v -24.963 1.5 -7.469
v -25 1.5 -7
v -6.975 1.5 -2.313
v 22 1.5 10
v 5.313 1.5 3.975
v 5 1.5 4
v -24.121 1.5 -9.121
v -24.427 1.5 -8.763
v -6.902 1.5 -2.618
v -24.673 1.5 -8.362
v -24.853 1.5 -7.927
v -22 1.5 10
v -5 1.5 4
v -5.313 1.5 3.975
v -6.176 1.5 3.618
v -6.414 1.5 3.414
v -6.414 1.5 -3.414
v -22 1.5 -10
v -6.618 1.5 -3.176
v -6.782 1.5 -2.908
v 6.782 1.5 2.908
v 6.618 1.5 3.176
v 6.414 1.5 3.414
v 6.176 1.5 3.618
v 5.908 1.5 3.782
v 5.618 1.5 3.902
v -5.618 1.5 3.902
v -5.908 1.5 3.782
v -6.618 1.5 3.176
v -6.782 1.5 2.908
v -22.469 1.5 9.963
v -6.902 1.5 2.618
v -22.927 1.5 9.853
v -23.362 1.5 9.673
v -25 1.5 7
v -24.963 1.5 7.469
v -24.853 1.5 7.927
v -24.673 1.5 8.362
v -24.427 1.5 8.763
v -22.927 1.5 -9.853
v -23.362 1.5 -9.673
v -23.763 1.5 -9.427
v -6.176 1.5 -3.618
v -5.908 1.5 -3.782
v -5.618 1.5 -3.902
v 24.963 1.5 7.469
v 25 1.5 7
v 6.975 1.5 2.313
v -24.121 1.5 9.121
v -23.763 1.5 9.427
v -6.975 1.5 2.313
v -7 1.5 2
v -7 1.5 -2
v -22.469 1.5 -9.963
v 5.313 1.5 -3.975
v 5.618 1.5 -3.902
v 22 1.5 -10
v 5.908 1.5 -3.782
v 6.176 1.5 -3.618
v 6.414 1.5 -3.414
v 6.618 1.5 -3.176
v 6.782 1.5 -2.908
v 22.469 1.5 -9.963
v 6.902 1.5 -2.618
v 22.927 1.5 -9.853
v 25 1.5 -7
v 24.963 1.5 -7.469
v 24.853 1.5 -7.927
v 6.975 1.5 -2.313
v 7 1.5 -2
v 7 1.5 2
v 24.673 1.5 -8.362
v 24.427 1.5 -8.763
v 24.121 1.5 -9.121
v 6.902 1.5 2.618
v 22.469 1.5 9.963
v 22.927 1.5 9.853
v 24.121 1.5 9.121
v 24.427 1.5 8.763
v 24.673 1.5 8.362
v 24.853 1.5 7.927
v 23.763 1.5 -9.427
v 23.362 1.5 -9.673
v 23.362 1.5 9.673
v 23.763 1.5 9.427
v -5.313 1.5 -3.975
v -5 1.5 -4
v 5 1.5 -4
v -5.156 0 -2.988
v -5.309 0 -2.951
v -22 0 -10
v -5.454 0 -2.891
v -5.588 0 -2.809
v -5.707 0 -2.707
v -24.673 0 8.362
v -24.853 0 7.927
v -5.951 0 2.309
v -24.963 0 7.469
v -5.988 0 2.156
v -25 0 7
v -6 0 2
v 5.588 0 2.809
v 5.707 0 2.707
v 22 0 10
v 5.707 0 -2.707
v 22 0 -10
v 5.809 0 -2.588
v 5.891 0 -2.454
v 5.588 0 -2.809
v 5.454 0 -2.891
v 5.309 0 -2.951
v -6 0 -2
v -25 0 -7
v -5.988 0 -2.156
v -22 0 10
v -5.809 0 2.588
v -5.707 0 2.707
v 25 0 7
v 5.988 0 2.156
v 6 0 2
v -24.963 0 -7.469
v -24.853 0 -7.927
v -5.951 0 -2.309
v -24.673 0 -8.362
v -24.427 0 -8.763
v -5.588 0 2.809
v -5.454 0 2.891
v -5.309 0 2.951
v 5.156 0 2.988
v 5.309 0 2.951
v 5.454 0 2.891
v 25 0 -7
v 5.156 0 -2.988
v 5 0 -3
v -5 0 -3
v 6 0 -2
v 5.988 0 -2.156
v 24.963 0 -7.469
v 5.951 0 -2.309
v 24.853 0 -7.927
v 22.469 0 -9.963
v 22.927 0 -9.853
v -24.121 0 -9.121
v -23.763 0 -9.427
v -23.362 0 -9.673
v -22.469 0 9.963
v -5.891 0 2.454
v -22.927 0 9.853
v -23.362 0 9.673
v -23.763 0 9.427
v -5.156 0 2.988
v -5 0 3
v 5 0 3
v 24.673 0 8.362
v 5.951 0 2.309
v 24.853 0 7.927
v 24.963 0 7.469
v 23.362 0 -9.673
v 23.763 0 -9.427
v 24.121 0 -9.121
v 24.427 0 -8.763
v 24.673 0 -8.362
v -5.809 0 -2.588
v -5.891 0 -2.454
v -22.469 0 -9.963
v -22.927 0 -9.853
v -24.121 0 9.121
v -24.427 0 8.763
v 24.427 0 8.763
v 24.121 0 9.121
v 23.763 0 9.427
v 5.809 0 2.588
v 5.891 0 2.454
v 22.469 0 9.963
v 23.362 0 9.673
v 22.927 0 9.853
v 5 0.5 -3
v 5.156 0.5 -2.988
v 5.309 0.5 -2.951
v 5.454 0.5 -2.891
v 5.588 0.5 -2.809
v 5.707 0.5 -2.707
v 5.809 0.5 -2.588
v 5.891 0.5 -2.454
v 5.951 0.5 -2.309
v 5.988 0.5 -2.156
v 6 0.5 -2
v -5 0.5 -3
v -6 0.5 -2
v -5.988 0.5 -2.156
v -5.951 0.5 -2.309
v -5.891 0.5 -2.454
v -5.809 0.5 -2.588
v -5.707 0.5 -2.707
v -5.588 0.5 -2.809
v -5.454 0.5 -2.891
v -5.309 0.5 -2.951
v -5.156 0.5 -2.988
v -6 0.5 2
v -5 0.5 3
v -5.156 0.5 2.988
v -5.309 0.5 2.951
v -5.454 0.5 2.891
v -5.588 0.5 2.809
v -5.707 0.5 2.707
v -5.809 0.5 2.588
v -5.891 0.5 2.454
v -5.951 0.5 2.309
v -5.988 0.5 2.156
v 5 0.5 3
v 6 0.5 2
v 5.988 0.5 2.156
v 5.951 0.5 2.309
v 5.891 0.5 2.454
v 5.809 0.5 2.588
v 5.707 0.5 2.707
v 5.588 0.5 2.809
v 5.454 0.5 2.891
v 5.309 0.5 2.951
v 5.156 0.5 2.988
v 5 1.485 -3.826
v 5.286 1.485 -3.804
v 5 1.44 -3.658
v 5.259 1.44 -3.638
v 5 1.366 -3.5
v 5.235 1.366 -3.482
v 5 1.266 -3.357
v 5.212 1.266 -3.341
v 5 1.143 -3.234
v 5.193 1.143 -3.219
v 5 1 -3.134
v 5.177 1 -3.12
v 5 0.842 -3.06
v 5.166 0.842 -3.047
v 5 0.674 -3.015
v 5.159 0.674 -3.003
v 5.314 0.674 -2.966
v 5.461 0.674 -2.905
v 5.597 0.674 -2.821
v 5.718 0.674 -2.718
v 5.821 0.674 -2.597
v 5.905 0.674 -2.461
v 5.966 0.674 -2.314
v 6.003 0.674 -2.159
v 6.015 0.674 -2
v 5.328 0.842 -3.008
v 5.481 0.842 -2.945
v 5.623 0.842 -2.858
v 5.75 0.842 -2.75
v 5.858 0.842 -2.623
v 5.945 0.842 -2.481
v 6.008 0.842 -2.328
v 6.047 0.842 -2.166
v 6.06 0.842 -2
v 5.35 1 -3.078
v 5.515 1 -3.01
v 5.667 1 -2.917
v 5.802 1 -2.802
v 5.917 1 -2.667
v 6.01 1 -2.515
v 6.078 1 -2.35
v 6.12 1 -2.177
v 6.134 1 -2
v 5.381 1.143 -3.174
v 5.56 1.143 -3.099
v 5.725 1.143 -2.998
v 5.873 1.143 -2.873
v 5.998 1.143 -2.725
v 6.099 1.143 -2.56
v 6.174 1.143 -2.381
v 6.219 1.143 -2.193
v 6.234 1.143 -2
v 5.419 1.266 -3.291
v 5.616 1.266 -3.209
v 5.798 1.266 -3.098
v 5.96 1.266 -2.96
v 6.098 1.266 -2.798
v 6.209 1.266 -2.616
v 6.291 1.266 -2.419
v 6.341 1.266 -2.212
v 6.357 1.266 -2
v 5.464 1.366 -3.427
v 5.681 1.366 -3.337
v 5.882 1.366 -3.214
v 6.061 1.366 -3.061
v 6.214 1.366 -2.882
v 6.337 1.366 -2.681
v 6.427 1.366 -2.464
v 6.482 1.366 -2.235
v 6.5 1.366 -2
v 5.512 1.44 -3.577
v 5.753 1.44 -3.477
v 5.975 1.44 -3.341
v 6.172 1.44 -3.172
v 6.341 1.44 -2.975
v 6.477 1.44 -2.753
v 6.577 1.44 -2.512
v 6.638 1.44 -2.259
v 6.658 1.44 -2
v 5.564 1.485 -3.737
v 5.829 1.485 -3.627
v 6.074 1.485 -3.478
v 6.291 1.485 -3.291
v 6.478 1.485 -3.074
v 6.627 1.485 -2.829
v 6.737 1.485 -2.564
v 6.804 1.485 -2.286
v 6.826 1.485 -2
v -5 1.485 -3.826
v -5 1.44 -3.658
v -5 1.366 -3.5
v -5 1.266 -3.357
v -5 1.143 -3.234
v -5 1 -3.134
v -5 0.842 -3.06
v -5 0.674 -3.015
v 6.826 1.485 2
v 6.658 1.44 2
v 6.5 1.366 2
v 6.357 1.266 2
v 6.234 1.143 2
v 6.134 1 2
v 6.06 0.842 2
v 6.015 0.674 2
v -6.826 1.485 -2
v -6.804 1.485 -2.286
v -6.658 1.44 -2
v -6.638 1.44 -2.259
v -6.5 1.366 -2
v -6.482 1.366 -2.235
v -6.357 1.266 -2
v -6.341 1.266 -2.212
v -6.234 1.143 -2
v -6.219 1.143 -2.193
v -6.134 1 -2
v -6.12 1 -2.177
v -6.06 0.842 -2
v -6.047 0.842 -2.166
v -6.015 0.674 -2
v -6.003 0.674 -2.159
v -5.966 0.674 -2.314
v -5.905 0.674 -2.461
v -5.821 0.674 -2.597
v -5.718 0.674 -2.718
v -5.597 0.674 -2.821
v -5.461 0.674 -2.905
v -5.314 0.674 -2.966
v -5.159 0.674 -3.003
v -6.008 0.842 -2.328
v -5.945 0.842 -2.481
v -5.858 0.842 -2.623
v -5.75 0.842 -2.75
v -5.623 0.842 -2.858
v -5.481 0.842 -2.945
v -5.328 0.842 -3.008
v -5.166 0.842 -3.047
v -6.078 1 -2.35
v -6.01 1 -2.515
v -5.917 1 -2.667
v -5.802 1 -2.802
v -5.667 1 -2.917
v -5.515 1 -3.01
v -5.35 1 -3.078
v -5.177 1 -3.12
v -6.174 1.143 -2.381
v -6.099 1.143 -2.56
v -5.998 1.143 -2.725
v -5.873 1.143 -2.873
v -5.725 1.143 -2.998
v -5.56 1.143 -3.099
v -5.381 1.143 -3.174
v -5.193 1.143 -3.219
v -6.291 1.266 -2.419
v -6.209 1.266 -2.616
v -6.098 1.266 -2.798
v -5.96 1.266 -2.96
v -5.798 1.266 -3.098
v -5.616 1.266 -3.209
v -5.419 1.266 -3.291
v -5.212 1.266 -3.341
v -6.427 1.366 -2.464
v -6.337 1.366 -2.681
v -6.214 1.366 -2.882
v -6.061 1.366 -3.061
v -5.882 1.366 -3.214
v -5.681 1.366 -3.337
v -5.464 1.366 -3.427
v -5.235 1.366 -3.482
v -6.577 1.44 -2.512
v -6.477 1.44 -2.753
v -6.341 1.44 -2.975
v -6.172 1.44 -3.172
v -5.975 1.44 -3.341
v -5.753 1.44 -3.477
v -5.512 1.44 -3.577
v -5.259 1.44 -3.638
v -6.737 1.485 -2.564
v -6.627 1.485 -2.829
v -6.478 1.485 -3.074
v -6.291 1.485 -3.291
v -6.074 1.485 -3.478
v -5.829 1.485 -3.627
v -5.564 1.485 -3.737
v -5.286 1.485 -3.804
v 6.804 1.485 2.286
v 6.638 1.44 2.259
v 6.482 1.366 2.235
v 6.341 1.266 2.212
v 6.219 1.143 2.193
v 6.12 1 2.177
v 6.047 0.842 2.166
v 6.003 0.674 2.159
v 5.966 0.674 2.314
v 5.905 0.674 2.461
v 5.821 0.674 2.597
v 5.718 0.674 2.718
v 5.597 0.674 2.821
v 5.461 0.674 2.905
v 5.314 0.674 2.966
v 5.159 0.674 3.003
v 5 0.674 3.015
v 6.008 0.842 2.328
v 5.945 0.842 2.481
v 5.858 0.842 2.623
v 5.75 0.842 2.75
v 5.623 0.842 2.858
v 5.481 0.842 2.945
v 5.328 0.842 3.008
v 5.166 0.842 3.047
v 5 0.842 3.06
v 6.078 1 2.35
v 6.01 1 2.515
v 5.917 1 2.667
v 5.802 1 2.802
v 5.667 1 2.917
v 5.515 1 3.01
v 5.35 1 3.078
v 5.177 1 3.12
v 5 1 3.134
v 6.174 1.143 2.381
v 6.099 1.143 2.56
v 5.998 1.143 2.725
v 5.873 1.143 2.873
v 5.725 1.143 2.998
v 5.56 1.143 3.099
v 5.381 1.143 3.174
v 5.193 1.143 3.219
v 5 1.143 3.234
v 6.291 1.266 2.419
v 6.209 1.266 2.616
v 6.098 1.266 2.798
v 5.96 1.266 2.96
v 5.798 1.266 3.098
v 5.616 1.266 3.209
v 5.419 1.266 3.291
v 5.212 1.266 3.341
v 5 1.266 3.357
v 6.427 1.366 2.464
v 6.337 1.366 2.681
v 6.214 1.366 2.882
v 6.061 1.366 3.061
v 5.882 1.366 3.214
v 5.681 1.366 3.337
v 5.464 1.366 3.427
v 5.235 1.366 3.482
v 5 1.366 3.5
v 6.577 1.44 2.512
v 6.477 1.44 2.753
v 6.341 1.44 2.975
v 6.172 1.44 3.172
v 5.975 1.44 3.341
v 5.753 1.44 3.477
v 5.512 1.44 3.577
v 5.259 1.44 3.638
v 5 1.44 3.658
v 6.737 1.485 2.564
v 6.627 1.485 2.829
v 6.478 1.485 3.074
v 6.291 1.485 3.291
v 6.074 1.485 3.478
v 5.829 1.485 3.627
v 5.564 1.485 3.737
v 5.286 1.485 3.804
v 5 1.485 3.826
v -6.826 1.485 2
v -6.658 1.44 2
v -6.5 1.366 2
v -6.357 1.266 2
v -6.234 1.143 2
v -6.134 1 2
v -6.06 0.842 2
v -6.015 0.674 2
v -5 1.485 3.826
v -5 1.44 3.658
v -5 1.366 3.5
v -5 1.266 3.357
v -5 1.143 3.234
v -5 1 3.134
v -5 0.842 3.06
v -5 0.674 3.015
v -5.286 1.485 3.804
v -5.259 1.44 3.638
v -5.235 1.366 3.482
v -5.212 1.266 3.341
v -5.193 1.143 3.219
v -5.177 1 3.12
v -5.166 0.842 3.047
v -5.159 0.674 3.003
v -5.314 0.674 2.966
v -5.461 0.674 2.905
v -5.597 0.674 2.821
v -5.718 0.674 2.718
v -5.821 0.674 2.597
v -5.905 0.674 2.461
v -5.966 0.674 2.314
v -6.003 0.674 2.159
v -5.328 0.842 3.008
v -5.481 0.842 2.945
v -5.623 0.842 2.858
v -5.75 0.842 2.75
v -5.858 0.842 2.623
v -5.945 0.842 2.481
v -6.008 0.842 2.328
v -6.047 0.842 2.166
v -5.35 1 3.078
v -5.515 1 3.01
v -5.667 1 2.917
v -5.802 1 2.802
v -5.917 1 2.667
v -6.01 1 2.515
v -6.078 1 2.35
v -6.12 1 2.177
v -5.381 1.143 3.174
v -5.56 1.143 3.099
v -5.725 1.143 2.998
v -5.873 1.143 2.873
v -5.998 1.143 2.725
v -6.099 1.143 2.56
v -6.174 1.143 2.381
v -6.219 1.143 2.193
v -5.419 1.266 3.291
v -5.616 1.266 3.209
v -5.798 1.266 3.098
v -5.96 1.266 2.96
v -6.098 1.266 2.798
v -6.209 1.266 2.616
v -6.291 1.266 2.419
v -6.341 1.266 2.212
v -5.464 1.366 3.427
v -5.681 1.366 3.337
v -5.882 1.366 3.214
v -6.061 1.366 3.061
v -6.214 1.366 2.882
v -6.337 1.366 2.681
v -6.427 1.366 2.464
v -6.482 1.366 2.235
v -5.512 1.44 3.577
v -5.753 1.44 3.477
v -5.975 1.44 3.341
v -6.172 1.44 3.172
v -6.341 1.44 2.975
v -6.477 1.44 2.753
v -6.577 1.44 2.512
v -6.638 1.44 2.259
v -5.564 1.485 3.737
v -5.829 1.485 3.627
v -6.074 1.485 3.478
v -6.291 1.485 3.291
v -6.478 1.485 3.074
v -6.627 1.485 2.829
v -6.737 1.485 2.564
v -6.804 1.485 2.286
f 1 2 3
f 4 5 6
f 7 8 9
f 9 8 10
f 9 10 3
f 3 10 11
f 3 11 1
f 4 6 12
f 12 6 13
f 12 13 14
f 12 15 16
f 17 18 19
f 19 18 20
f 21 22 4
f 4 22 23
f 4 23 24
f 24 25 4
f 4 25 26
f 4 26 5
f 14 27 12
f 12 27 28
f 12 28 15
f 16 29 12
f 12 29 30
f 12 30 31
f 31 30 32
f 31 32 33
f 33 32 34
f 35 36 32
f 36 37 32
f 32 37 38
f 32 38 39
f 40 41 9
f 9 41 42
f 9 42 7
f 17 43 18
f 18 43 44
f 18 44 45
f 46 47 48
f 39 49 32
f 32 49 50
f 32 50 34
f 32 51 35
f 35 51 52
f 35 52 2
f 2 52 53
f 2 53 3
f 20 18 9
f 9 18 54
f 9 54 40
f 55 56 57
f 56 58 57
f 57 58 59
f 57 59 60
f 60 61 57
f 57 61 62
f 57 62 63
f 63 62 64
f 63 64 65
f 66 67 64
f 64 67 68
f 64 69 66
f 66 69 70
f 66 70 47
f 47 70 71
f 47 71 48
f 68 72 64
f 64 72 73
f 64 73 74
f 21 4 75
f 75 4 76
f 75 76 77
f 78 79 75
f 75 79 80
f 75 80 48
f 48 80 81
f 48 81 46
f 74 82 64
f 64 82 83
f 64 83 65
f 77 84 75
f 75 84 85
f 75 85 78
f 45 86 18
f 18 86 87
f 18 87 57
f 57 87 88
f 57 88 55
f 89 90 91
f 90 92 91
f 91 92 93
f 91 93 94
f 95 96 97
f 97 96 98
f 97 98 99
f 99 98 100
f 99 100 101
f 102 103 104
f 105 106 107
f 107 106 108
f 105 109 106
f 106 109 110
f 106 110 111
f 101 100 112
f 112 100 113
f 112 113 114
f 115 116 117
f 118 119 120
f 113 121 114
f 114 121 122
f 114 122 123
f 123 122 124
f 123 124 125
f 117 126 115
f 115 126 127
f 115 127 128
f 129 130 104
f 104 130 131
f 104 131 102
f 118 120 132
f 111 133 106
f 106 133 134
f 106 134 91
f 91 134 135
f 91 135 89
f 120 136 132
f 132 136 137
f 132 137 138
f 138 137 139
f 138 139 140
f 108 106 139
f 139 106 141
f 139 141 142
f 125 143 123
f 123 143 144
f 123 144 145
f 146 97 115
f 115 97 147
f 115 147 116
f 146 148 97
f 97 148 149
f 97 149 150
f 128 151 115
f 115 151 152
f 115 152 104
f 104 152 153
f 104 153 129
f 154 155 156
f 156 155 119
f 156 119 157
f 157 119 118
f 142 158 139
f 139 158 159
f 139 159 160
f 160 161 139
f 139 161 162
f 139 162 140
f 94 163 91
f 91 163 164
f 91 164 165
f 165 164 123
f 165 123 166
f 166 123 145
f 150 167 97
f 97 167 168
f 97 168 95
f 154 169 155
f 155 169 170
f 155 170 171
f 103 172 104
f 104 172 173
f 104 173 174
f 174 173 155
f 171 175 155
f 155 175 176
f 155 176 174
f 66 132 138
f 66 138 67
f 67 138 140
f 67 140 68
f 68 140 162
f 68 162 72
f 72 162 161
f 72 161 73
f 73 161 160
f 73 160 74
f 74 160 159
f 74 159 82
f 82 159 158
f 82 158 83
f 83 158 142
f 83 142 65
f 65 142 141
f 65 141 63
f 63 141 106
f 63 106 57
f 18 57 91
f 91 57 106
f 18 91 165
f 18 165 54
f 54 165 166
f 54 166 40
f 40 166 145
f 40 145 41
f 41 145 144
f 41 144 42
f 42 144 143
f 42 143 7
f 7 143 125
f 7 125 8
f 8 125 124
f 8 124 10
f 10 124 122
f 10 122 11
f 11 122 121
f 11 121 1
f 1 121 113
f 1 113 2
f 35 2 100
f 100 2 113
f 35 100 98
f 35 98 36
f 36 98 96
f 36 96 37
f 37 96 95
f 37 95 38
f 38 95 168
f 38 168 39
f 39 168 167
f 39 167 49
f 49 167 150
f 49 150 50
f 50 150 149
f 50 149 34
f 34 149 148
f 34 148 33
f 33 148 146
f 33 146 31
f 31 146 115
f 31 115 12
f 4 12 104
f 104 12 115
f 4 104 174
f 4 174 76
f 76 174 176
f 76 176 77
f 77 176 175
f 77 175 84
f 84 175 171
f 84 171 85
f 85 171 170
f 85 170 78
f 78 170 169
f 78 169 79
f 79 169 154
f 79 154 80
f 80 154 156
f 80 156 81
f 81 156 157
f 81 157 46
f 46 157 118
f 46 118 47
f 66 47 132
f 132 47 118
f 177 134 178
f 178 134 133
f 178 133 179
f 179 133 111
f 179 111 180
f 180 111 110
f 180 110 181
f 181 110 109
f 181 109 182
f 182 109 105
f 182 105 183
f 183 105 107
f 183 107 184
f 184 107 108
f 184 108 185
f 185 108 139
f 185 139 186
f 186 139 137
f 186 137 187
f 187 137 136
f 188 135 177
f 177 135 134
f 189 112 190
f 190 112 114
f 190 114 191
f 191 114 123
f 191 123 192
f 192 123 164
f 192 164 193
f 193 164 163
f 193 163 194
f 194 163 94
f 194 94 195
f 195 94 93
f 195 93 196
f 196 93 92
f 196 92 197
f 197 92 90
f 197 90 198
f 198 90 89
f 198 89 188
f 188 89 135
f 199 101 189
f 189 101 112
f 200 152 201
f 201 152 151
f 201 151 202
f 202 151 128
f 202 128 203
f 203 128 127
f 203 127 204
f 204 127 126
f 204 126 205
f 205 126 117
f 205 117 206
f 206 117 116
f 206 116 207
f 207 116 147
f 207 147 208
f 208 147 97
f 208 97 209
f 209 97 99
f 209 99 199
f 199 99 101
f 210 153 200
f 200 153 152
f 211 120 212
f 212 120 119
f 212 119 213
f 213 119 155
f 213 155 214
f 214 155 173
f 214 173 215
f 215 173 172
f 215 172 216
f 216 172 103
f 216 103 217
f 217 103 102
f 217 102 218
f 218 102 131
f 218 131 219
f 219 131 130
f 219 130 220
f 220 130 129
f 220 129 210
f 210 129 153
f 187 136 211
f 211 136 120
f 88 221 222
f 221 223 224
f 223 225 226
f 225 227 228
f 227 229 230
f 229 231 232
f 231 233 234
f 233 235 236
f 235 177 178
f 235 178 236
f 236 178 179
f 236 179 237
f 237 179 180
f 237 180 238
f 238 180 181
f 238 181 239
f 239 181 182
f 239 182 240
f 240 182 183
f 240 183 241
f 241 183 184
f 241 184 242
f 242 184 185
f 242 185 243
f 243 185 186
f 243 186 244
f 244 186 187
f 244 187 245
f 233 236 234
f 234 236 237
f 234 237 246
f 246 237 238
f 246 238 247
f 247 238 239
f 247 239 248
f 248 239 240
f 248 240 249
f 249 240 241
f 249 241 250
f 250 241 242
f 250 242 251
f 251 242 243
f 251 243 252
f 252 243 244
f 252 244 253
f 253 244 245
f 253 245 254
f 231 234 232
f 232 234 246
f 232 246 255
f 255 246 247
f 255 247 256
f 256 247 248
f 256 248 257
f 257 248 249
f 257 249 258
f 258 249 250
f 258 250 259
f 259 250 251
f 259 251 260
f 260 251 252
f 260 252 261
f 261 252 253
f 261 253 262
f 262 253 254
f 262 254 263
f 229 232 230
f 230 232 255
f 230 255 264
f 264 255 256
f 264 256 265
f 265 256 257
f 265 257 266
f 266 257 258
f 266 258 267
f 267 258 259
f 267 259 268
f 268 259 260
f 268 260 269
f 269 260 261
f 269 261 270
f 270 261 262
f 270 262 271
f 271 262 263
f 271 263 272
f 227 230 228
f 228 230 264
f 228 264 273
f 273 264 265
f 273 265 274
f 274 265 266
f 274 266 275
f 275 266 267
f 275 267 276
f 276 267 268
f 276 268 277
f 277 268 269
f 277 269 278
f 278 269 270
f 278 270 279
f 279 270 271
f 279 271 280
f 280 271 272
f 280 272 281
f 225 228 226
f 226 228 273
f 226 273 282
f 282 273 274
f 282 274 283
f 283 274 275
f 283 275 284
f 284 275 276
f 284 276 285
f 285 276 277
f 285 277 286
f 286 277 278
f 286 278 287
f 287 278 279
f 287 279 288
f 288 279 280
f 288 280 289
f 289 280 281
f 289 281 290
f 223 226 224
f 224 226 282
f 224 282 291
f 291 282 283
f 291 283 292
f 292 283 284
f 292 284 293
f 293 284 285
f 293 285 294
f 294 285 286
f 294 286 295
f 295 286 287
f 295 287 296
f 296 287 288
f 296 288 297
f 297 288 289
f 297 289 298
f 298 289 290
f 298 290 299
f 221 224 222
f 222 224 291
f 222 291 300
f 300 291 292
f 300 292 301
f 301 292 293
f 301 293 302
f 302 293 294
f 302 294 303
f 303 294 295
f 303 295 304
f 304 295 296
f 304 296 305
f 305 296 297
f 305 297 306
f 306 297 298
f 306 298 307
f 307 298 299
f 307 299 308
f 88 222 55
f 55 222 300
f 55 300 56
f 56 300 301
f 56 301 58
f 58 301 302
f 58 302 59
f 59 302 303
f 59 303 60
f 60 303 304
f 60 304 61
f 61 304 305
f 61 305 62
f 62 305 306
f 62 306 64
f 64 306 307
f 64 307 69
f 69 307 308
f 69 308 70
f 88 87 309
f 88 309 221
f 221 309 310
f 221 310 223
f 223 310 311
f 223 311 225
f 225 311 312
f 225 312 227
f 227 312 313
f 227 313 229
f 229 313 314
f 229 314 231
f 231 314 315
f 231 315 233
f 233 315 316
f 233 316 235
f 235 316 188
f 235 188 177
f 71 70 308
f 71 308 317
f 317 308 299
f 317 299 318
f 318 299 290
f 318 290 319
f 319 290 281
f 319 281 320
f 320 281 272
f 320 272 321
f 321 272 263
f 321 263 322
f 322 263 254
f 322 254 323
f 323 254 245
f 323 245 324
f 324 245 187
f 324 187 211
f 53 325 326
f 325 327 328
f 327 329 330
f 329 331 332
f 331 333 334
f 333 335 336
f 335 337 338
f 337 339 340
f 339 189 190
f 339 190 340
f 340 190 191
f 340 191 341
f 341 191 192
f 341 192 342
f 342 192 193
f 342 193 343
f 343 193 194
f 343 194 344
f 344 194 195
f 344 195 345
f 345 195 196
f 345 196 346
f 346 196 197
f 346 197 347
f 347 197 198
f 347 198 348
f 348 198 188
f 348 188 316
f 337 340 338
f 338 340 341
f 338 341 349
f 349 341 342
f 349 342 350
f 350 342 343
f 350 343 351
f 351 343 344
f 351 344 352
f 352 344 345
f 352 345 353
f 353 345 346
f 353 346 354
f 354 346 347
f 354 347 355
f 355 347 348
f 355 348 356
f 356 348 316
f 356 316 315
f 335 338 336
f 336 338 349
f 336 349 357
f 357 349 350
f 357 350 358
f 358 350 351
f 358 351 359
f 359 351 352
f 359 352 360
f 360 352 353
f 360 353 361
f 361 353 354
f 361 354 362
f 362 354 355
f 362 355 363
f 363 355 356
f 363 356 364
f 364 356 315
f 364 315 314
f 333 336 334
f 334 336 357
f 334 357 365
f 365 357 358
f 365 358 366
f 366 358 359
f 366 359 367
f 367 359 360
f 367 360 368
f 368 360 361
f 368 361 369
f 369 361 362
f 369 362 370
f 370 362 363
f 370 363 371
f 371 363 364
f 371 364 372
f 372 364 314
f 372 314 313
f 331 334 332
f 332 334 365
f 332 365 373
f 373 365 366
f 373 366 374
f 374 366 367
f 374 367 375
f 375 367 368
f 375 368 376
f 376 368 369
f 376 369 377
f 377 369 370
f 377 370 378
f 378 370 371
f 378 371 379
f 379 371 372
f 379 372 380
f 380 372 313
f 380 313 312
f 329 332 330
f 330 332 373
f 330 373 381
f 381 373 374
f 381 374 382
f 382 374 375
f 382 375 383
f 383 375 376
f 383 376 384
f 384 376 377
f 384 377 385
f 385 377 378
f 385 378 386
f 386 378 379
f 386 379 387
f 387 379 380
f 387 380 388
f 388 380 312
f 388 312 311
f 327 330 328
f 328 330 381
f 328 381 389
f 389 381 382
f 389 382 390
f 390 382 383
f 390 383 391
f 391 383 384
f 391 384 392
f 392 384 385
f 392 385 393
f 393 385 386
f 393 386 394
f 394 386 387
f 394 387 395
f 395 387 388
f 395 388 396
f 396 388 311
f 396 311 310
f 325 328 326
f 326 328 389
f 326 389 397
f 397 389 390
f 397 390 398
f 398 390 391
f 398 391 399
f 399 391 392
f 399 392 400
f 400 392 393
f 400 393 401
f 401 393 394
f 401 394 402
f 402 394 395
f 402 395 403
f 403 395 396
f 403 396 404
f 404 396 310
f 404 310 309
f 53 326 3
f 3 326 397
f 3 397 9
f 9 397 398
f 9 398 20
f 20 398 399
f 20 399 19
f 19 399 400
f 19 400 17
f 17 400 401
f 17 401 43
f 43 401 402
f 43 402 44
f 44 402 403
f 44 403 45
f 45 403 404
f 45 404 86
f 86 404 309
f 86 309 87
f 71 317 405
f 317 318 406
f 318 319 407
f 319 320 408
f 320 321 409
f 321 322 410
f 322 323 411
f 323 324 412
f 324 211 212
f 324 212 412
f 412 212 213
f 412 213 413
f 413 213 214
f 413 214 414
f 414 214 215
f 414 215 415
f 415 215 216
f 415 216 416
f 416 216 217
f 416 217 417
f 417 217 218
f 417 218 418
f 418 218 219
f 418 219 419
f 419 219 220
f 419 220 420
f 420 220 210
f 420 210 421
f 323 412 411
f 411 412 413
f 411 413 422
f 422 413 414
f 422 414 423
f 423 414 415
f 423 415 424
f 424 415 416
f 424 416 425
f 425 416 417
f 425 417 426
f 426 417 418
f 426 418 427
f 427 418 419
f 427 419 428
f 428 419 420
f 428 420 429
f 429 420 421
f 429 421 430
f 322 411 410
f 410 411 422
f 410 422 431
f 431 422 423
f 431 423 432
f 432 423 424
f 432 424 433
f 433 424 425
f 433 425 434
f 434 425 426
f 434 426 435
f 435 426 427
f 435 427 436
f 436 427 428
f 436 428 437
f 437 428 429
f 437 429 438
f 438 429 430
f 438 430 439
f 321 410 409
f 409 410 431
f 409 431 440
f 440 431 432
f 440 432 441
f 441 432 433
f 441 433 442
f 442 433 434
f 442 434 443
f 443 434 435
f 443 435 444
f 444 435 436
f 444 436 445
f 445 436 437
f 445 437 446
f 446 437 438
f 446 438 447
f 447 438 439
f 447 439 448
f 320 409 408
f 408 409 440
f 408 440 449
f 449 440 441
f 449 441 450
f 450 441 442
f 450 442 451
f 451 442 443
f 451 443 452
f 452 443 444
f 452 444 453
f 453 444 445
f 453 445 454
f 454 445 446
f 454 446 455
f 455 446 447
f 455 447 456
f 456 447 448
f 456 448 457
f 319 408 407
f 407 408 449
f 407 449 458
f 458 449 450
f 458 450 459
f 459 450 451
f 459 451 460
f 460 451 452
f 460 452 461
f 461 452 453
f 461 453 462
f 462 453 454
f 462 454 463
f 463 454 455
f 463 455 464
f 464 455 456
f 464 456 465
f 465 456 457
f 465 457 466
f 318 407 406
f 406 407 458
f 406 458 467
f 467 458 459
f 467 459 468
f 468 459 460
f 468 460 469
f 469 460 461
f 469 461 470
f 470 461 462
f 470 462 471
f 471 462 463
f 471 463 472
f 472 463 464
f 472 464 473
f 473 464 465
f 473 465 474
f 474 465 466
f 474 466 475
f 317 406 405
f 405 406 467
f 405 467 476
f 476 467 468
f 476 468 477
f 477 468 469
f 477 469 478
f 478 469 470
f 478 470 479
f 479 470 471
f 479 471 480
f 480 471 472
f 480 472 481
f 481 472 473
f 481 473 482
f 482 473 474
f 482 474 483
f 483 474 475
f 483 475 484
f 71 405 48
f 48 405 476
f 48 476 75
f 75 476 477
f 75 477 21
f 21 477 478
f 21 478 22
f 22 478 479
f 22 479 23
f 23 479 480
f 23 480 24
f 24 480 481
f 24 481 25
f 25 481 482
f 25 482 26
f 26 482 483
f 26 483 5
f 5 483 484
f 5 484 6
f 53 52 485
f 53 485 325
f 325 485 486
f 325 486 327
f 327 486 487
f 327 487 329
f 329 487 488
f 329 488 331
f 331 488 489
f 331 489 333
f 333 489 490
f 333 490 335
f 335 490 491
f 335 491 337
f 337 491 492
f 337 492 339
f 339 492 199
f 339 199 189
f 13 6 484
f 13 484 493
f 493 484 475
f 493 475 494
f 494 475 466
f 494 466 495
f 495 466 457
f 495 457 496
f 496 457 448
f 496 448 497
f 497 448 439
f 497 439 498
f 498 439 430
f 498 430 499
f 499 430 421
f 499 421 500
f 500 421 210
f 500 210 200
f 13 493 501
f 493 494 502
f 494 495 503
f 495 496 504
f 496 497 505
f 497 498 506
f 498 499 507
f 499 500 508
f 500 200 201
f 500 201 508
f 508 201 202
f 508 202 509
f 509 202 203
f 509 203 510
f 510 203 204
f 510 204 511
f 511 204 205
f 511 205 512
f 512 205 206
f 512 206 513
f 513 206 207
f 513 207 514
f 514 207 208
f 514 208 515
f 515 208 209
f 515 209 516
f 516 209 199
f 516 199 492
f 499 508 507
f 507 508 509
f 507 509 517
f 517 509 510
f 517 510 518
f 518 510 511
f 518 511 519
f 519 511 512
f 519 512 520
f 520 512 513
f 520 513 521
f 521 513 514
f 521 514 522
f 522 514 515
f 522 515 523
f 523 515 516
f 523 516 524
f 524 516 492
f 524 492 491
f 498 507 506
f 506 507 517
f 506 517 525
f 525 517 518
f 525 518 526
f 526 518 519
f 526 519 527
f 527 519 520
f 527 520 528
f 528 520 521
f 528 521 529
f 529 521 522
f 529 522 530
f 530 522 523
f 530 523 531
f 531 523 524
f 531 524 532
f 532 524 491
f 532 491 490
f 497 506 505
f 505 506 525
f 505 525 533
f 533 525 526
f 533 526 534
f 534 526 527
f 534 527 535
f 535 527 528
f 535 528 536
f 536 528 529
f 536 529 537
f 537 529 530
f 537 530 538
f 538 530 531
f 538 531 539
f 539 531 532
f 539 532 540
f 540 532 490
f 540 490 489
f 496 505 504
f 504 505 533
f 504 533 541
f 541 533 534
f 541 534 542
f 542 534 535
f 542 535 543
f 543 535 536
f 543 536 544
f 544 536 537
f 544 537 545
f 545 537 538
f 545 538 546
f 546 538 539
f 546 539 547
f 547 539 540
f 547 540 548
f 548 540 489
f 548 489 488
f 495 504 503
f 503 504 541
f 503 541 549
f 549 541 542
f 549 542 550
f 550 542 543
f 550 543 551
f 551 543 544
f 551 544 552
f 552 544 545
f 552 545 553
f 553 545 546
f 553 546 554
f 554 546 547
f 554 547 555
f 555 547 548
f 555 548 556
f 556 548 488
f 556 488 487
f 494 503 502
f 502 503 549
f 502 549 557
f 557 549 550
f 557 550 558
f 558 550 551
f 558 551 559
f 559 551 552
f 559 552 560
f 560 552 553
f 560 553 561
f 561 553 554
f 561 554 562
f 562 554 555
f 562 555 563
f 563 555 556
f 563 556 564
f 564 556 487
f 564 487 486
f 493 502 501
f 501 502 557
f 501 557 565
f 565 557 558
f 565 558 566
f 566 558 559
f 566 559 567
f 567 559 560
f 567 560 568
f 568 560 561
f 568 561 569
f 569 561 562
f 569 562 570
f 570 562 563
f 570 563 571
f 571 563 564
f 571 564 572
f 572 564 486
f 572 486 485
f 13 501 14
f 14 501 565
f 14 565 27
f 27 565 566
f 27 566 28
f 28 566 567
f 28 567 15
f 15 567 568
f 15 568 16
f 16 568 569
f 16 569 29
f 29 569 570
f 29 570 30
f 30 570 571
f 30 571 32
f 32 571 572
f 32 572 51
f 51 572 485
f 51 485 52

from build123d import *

# Parameters (mm, degrees)
BOSS_EXTRUDE1_DEPTH = 1.5
FILLET1_R           = 1


with BuildPart() as part:
    # Sketch1 → Boss-Extrude1 (new body)
    with BuildSketch(Plane(origin=(0, 0, 0), x_dir=(1, 0, 0), z_dir=(0, 1, 0))):
        with BuildLine():
            Line((-22, 10), (22, 10))
            ThreePointArc((22, 10), (24.121320344, 9.121320344), (25, 7))
            Line((25, 7), (25, -7))
            ThreePointArc((25, -7), (24.121320344, -9.121320344), (22, -10))
            Line((22, -10), (-22, -10))
            ThreePointArc((-22, -10), (-24.121320344, -9.121320344), (-25, -7))
            Line((-25, -7), (-25, 7))
            ThreePointArc((-25, 7), (-24.121320344, 9.121320344), (-22, 10))
        make_face()
        with BuildLine():
            Line((-5, 3), (5, 3))
            ThreePointArc((5, 3), (5.707106781, 2.707106781), (6, 2))
            Line((6, 2), (6, -2))
            ThreePointArc((6, -2), (5.707106781, -2.707106781), (5, -3))
            Line((5, -3), (-5, -3))
            ThreePointArc((-5, -3), (-5.707106781, -2.707106781), (-6, -2))
            Line((-6, -2), (-6, 2))
            ThreePointArc((-6, 2), (-5.707106781, 2.707106781), (-5, 3))
        make_face(mode=Mode.SUBTRACT)
    extrude(amount=BOSS_EXTRUDE1_DEPTH)

    # Fillet1
    fillet1_edges = [part.edges().sort_by_distance(p)[0] for p in [
        (5.707106781, 1.5, -2.707106781),
        (0, 1.5, -3),
        (-5.707106781, 1.5, -2.707106781),
        (-6, 1.5, 0),
        (-5.707106781, 1.5, 2.707106781),
        (0, 1.5, 3),
        (5.707106781, 1.5, 2.707106781),
        (6, 1.5, 0),
    ]]
    fillet(fillet1_edges, radius=FILLET1_R)


solid = part.part
